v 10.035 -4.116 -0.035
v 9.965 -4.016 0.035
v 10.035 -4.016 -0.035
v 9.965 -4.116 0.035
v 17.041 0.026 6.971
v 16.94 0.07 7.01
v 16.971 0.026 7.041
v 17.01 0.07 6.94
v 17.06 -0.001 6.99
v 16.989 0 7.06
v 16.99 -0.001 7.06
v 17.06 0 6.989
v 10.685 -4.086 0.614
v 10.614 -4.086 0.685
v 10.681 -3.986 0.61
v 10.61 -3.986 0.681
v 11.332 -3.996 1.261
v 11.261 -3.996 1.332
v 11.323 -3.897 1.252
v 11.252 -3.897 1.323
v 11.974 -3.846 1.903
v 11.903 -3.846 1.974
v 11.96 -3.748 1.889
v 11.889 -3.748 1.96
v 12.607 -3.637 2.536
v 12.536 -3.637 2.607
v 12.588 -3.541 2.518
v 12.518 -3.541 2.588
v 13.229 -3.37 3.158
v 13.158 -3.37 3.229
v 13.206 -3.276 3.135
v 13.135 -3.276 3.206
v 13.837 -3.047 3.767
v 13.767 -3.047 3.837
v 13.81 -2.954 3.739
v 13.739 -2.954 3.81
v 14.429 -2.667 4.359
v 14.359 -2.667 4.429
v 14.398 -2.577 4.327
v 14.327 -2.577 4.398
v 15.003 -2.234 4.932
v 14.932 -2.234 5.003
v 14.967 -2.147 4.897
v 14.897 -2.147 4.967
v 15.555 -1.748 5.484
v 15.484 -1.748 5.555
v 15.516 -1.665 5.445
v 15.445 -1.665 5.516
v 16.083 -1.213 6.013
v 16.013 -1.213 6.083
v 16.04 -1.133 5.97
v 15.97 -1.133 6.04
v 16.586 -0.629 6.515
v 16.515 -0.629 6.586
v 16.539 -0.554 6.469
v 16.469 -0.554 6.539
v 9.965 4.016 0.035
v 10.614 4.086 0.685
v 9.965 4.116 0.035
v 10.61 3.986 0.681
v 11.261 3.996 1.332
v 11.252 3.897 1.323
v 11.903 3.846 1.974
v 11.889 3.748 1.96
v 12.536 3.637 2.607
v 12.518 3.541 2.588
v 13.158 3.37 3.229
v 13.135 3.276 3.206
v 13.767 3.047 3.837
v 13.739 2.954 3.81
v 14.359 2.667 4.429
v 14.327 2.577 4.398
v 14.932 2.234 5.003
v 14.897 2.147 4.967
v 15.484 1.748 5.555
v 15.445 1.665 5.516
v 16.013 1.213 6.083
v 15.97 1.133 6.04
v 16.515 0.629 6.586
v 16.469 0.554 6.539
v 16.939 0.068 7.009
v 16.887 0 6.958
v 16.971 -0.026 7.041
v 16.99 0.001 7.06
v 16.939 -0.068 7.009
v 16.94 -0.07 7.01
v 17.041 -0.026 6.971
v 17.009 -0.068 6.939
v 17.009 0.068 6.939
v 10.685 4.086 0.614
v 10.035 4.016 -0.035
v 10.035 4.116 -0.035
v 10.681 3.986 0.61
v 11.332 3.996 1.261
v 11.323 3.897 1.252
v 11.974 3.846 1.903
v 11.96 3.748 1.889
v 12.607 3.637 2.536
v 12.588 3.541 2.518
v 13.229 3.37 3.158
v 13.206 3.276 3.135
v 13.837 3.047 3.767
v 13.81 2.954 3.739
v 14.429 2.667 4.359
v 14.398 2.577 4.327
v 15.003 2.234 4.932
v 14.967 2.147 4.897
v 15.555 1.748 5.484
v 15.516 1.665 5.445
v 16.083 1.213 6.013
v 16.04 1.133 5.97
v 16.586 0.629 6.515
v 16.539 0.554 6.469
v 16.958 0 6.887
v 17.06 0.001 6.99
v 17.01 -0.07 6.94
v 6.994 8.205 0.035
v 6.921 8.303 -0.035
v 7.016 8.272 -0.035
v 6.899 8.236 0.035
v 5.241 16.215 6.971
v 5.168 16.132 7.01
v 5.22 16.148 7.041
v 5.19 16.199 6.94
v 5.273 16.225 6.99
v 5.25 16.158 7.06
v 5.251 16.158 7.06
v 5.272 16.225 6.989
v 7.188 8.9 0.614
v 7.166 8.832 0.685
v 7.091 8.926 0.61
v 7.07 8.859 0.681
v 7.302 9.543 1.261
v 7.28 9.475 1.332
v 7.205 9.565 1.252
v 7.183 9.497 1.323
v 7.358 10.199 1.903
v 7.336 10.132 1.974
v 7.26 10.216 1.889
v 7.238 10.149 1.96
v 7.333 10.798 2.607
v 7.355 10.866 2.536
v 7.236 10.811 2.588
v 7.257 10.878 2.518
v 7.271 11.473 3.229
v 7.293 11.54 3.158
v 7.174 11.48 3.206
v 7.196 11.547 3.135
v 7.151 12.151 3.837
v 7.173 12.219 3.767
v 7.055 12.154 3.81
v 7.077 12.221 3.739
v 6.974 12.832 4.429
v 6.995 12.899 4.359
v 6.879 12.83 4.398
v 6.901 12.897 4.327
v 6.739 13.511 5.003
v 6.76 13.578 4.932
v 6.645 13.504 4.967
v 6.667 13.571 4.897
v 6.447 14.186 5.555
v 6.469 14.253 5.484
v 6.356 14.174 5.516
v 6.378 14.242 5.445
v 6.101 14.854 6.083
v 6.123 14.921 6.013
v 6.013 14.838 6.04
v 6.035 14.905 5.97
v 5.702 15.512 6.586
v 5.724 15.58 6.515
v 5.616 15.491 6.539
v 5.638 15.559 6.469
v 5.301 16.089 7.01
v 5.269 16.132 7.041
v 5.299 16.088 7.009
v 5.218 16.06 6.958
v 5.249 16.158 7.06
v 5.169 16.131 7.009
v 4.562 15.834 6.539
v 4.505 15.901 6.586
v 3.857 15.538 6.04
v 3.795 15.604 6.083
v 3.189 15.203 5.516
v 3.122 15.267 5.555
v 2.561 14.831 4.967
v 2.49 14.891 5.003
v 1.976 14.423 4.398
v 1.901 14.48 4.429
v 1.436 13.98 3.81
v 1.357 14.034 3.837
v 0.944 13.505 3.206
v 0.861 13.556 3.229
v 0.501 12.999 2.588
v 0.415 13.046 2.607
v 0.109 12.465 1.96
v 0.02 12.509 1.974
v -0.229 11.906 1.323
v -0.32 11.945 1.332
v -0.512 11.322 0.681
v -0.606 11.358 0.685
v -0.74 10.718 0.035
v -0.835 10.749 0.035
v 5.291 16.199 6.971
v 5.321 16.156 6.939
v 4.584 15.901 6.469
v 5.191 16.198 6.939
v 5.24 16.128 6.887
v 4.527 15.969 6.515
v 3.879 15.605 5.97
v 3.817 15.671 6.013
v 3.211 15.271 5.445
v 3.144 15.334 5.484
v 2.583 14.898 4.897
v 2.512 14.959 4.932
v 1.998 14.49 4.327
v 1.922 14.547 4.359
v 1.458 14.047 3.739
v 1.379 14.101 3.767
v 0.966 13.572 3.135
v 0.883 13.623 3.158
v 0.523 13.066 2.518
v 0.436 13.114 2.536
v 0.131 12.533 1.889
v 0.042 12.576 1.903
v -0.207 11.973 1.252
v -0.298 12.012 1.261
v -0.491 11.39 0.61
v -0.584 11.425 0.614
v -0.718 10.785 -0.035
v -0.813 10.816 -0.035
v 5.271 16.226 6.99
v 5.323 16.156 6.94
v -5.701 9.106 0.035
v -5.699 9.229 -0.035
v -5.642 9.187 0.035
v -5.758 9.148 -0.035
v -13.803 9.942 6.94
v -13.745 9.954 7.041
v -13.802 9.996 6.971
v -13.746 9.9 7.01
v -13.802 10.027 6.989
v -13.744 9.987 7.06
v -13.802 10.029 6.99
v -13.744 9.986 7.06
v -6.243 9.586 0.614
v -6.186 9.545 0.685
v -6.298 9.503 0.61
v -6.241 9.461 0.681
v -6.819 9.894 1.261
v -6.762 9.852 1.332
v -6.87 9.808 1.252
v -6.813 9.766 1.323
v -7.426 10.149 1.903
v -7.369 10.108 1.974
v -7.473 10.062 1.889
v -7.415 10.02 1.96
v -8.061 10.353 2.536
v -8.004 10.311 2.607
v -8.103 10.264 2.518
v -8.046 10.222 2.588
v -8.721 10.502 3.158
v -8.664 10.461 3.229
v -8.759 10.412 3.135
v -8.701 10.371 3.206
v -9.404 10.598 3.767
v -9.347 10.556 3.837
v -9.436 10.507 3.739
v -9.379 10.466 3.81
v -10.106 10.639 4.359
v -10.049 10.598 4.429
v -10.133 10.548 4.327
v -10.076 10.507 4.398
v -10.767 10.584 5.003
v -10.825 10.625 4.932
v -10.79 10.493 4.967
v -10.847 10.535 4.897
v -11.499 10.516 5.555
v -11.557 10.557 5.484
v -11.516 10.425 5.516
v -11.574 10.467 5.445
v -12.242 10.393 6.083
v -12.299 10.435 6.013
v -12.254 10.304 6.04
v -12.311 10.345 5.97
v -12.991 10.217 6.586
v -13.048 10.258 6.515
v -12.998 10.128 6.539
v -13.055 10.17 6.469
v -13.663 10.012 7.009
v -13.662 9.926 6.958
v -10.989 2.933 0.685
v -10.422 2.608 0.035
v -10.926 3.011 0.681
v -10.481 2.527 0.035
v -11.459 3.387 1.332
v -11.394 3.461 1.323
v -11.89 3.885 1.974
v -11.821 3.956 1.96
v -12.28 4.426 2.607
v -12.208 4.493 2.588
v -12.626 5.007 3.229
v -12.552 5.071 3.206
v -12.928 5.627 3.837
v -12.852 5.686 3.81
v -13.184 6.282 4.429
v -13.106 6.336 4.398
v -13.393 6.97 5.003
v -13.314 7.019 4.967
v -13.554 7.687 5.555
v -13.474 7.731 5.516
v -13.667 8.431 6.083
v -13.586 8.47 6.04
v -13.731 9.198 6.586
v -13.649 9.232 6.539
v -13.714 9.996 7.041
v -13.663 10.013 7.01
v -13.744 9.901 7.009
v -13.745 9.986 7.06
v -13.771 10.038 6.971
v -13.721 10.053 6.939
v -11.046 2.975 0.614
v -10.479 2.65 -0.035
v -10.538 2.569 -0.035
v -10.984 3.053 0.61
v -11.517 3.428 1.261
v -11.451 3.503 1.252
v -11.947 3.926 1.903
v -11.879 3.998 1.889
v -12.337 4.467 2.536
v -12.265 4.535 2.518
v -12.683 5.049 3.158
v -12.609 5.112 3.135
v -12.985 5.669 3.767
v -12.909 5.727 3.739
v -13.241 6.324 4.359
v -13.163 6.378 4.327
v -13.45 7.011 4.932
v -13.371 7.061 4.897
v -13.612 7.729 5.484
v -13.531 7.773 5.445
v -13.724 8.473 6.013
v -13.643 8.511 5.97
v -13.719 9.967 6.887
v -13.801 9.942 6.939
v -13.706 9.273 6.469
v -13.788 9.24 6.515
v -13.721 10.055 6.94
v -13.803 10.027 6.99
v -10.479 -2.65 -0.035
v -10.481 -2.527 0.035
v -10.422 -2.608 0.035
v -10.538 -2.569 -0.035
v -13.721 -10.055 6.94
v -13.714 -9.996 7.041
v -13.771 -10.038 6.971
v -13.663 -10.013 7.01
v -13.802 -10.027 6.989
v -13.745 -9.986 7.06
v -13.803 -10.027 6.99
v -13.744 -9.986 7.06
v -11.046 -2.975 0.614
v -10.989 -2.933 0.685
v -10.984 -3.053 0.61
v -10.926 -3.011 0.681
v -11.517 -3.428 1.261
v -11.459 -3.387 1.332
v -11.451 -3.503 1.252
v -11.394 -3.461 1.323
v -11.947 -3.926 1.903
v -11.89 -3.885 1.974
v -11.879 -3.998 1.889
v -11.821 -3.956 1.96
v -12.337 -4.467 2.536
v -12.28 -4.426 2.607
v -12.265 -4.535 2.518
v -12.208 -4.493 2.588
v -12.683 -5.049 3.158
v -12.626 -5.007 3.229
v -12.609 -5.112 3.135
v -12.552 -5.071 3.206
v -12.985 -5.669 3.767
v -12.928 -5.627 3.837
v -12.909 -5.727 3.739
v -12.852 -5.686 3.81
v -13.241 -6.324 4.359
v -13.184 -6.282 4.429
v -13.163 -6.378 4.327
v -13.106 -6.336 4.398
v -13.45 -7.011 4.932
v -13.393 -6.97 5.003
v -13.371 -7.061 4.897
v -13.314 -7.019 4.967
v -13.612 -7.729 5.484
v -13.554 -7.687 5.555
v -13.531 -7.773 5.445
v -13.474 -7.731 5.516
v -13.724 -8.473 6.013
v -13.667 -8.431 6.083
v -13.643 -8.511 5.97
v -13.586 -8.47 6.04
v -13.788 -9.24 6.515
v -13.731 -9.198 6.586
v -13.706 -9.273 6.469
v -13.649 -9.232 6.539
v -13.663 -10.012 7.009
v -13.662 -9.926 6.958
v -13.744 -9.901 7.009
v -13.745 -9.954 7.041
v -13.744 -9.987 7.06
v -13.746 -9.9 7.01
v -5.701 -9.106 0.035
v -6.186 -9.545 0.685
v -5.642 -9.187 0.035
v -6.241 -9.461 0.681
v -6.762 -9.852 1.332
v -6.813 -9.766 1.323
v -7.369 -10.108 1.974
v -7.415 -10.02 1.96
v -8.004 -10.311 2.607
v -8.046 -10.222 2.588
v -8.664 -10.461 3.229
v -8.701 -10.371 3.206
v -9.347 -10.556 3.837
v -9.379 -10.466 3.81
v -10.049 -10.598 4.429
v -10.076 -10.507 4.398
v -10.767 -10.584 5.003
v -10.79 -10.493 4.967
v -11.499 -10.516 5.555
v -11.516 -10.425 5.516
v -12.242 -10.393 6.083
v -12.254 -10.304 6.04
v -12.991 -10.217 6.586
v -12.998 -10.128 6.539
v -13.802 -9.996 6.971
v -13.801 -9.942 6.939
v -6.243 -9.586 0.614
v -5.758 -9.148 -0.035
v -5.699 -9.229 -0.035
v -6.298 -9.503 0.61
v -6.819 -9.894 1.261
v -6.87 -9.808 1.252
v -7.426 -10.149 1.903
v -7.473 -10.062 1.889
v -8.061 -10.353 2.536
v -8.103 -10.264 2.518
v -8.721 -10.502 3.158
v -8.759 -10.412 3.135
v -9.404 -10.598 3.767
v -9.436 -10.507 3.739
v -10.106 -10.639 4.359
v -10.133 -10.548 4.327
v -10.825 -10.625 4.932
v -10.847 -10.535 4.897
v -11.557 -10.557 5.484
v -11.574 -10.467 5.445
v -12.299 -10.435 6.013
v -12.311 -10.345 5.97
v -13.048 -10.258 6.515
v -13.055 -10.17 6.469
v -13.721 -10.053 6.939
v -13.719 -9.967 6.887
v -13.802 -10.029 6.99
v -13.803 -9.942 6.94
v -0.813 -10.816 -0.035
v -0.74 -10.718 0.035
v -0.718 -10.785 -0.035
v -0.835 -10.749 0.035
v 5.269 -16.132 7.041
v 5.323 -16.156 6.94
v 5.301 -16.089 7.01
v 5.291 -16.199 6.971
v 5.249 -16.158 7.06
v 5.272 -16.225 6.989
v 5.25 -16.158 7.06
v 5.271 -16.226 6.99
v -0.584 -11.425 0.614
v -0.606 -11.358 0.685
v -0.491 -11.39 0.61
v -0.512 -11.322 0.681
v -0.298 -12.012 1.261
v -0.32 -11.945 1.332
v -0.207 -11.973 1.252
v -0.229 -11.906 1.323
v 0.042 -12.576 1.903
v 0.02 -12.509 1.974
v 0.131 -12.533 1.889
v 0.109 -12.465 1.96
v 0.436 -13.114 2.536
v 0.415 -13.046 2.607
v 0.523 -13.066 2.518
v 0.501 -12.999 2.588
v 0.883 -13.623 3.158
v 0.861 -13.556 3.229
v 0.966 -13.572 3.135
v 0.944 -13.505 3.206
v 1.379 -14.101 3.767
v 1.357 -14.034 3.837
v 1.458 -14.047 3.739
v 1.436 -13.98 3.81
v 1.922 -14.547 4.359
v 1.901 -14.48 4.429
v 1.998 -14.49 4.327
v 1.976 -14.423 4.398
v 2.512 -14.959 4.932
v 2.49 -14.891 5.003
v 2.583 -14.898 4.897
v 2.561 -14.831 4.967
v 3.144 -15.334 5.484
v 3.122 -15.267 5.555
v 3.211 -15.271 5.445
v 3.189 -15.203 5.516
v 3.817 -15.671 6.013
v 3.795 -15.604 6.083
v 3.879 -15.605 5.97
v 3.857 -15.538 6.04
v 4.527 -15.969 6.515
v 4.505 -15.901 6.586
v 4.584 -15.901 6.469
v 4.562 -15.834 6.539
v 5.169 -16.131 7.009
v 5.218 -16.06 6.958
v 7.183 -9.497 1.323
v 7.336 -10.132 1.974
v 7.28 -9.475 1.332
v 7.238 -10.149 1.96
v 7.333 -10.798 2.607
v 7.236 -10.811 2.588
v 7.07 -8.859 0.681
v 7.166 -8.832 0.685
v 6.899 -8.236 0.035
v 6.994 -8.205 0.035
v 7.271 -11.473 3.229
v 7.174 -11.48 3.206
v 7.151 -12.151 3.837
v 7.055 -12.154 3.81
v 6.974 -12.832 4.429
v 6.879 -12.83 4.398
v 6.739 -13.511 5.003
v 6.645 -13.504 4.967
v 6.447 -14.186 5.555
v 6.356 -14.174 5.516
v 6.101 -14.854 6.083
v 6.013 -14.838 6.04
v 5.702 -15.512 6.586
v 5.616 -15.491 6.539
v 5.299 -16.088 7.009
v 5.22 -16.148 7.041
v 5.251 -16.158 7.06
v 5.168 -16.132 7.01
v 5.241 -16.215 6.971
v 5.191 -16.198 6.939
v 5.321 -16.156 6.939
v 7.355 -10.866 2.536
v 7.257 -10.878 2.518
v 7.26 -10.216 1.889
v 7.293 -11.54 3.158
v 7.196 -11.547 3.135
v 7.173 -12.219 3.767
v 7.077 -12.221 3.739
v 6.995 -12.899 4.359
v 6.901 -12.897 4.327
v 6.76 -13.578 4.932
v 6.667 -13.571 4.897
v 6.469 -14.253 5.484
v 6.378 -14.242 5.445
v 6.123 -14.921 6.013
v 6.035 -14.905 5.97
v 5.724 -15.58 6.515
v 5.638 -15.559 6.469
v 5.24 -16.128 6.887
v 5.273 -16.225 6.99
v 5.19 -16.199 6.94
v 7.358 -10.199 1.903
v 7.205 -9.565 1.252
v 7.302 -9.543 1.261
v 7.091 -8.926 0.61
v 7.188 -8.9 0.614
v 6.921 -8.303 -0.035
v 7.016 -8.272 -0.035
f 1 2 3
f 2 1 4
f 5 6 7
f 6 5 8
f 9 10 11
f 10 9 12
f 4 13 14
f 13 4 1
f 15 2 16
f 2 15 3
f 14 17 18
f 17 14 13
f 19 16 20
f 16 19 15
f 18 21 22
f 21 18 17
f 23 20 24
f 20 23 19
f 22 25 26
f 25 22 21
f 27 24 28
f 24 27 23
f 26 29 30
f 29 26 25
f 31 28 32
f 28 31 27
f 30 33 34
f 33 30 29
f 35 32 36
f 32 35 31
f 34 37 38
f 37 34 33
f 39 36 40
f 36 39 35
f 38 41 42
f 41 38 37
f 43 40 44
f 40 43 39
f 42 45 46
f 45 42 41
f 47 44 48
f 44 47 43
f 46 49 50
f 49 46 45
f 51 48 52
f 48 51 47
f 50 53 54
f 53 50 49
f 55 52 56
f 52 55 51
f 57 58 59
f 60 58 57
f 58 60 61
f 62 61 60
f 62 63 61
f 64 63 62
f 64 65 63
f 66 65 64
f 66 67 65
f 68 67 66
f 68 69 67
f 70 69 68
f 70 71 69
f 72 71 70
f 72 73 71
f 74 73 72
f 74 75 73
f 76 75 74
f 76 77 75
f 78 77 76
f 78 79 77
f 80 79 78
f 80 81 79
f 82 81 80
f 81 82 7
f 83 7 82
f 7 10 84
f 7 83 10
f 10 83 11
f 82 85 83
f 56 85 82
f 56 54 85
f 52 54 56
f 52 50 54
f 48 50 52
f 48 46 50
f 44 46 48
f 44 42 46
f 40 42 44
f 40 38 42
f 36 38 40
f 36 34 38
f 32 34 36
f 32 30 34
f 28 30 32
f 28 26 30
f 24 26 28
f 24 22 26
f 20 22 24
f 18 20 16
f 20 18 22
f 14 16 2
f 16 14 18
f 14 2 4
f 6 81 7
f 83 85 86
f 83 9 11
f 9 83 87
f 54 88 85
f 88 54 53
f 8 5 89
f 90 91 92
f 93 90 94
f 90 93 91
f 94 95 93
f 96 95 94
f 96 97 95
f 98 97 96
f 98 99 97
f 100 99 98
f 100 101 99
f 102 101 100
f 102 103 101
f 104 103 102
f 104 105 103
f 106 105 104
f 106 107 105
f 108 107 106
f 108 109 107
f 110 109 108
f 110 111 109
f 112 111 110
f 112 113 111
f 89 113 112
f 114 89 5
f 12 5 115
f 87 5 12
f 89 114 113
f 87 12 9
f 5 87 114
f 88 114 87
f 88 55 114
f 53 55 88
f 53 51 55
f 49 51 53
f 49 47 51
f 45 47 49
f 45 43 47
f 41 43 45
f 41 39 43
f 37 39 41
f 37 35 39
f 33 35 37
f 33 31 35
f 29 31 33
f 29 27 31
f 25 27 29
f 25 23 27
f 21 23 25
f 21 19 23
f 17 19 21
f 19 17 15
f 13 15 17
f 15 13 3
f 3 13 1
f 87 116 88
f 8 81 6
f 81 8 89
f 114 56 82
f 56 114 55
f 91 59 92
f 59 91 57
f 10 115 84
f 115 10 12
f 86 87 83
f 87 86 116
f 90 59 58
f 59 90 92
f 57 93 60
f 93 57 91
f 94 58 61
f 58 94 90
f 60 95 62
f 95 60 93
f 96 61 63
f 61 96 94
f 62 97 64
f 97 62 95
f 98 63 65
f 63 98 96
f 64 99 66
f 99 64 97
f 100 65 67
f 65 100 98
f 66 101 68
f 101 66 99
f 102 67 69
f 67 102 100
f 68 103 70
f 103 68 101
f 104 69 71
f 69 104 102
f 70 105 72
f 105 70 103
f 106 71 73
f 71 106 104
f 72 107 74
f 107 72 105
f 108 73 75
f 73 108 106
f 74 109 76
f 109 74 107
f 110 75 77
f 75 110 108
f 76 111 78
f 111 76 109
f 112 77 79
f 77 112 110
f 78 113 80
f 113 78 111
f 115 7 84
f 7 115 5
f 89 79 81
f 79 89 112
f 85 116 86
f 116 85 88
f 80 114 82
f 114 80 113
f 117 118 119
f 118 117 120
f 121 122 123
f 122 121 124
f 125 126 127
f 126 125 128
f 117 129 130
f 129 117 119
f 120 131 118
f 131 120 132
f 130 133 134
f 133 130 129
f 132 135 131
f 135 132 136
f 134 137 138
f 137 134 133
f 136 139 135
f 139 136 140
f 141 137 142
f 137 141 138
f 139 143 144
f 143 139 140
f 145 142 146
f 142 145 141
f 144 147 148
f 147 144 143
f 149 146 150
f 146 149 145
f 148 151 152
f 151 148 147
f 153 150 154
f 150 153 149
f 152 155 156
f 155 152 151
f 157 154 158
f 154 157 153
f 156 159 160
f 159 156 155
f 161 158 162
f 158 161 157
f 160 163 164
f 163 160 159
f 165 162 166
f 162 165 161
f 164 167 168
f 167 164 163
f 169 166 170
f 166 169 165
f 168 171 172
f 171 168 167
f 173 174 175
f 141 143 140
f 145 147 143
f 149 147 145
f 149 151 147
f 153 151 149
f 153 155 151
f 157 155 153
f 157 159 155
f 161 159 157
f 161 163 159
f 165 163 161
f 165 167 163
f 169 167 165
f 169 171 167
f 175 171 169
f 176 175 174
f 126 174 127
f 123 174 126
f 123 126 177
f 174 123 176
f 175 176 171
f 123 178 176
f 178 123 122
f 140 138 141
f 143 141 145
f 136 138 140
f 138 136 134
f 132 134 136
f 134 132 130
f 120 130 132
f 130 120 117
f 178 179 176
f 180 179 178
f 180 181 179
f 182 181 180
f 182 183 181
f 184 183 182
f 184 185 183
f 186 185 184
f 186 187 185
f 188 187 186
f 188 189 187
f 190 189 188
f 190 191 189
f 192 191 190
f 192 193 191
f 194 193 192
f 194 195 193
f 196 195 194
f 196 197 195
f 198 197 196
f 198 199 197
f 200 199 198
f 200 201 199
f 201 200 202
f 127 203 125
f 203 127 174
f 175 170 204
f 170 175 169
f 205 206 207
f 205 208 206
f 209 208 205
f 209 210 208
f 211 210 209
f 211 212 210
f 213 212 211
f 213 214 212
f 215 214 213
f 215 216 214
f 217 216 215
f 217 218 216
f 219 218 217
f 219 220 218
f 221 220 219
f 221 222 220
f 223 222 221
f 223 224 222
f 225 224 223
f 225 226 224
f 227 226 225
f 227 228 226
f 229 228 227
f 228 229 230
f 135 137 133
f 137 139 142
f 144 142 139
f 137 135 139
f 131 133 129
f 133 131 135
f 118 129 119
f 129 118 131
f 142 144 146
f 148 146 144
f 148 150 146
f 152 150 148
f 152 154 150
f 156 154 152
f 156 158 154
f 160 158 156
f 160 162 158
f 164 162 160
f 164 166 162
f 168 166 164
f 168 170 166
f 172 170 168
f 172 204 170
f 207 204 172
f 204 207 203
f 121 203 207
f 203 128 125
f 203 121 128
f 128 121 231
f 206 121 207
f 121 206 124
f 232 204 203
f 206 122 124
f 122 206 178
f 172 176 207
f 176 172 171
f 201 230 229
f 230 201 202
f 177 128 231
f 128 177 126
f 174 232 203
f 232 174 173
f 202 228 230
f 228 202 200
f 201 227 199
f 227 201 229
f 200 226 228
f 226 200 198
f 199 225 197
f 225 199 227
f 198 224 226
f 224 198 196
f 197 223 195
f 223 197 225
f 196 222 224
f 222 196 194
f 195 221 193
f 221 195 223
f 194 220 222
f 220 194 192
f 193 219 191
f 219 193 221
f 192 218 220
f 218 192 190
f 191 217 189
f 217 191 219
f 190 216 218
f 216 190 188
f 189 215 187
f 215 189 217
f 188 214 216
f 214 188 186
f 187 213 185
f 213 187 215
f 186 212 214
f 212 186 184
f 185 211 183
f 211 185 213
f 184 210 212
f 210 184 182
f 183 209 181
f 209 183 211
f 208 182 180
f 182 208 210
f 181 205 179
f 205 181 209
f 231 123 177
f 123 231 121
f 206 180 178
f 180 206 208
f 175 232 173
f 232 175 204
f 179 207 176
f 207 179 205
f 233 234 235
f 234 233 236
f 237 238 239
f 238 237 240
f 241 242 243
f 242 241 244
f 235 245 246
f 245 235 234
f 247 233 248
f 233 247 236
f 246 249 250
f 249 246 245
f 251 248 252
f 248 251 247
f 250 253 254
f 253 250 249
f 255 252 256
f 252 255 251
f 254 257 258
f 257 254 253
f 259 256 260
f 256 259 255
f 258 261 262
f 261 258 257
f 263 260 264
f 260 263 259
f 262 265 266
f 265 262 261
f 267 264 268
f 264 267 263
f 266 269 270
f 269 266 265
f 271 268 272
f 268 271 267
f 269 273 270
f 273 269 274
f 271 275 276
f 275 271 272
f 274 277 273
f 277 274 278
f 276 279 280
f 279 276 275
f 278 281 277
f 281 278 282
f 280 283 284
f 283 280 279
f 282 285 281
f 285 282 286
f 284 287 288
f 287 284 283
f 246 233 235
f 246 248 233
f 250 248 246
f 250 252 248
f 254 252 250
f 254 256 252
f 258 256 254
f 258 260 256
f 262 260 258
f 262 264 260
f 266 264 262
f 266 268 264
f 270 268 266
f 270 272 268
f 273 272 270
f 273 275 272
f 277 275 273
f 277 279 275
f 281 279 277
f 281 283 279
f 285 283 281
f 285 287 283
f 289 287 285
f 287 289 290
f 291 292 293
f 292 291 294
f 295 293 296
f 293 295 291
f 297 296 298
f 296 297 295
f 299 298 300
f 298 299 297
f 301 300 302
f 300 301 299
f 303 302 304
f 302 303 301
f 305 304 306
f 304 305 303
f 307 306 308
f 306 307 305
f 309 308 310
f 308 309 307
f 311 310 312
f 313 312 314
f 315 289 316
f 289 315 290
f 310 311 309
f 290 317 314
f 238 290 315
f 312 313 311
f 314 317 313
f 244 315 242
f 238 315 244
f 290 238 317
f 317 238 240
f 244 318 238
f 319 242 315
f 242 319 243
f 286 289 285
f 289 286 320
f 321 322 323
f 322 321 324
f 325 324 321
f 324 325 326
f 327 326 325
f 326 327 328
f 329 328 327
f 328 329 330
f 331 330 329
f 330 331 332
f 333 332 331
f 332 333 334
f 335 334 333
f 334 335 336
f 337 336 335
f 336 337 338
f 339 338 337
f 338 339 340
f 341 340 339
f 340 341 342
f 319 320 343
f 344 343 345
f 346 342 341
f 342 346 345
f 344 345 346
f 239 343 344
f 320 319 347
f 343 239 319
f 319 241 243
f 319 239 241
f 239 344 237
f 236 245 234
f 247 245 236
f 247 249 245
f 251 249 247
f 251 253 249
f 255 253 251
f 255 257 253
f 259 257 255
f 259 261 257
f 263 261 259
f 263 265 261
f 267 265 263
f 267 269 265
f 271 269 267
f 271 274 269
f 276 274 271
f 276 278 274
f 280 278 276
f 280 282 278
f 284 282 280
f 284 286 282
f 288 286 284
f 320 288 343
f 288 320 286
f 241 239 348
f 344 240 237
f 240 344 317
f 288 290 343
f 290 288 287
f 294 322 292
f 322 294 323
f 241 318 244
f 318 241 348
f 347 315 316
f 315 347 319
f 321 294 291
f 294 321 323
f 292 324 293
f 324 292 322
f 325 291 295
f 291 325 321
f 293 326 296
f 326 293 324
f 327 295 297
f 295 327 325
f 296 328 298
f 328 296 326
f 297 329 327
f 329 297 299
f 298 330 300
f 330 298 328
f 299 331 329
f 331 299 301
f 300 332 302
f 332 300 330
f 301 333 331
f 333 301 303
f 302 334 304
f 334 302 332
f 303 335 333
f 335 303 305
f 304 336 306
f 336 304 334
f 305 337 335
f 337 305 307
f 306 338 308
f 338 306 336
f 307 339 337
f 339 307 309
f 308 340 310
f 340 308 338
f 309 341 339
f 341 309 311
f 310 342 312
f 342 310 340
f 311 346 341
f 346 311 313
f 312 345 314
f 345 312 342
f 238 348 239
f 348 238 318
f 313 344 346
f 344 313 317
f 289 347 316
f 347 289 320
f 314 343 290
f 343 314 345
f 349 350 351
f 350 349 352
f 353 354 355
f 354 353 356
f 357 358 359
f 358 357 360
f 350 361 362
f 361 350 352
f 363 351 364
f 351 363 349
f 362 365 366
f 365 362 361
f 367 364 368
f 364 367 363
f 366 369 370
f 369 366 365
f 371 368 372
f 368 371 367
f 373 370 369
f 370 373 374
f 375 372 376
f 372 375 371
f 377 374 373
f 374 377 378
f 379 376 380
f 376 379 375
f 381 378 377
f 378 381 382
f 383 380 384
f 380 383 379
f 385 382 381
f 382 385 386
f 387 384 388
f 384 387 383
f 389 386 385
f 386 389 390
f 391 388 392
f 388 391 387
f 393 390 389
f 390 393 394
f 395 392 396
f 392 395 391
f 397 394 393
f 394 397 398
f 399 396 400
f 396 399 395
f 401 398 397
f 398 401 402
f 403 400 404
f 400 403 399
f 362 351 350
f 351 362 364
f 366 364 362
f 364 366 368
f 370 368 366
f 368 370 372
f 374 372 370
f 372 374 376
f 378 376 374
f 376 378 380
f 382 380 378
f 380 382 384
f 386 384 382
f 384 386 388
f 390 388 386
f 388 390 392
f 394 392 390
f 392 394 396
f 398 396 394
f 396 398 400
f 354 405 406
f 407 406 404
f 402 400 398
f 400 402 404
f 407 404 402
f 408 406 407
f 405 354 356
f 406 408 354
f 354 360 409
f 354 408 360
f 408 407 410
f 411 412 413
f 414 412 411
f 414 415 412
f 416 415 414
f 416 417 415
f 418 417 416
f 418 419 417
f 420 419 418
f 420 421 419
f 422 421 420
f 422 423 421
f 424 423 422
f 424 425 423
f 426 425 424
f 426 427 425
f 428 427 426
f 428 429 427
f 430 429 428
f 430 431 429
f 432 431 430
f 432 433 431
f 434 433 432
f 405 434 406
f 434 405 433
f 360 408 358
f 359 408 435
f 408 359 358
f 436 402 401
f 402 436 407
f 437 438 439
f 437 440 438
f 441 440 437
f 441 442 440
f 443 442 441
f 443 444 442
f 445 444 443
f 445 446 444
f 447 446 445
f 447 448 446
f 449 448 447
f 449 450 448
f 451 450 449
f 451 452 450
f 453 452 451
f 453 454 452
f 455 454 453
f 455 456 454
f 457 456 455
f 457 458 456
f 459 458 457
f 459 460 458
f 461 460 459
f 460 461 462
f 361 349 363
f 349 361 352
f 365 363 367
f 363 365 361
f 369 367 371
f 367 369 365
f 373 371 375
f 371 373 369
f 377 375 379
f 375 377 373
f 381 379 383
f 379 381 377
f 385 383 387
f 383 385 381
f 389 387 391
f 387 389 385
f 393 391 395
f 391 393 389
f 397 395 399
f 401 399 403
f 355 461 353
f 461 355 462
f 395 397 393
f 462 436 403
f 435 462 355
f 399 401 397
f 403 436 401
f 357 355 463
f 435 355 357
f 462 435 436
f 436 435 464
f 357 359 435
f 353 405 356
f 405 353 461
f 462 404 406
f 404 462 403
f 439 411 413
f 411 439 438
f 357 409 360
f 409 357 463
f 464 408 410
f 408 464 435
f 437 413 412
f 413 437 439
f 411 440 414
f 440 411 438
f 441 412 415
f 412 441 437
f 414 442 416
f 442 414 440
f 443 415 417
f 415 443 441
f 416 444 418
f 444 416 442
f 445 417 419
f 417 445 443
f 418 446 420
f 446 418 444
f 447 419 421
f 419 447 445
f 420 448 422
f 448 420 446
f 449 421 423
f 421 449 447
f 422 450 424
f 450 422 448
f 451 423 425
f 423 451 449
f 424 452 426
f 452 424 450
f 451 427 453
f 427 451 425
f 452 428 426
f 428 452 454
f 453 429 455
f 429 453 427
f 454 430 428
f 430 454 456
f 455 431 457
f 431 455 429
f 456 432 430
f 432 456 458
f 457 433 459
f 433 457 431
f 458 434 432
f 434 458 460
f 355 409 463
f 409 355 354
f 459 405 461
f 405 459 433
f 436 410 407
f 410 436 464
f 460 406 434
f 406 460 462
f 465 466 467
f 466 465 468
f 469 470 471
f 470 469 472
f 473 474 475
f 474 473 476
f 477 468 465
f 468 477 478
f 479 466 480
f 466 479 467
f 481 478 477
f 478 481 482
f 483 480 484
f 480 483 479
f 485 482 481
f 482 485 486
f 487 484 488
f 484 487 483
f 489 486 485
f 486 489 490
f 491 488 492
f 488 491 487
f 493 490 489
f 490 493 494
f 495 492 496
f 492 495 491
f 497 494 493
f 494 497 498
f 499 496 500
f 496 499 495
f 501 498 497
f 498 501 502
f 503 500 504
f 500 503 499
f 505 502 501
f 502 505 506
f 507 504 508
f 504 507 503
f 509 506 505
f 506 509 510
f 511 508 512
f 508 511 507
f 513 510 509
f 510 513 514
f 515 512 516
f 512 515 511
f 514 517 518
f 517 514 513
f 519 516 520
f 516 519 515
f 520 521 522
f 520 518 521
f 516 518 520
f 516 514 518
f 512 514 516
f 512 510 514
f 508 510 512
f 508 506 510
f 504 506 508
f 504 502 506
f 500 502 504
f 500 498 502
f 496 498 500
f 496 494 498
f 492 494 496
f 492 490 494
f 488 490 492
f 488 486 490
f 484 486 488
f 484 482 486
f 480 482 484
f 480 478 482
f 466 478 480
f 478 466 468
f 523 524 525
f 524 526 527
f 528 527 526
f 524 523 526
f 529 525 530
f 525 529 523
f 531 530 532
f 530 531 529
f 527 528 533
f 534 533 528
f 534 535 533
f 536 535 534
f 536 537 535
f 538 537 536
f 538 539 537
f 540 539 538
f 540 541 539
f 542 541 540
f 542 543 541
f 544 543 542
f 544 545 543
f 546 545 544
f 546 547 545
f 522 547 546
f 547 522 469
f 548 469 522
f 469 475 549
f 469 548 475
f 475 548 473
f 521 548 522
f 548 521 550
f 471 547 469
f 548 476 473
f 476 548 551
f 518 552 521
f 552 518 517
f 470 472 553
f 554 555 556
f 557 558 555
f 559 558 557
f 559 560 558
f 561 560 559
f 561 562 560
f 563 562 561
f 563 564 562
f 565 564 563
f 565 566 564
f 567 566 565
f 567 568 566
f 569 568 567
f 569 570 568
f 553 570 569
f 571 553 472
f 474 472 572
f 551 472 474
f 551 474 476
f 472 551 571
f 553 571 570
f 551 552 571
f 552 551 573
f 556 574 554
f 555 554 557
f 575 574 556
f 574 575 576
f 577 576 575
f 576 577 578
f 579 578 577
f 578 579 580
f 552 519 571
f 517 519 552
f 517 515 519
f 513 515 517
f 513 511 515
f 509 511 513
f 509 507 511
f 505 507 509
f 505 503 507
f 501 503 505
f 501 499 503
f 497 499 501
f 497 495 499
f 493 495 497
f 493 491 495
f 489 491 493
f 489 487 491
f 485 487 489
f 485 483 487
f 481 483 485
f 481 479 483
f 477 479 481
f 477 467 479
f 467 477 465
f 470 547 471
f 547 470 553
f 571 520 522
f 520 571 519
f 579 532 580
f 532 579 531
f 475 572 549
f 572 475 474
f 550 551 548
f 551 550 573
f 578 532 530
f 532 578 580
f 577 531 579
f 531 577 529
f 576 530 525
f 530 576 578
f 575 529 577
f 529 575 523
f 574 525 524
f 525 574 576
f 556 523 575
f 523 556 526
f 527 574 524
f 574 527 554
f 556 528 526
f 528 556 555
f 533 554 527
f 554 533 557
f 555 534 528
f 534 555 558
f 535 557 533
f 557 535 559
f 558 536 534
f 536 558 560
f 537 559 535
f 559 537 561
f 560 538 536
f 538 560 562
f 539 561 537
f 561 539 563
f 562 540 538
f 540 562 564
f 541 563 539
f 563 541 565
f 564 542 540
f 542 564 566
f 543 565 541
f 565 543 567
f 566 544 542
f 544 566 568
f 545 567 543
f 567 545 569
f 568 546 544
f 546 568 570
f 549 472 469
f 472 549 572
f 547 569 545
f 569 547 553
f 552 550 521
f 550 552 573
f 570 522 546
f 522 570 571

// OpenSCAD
$fn = 100;

arch_w = 2;
arch_d = 0.1;
arch_t = 0.1;

arch_sweep_radius = 14;
arch_sweep_angle = 45;
arch_base_sep = -4.967*2;

module arch_half(){
    translate([arch_base_sep,0,0]){
        rotate_extrude(angle = arch_sweep_angle){
            translate([arch_sweep_radius,0,0]){
                square([arch_t, arch_d], center=true);
            }
        }
    }
}

module arch(){
    rotate([0,-45,0]){
        rotate([0,0,-90]){
            arch_half();
            mirror([-1,0,0]){
                arch_half();
            }
        }
    }
}

//arch();


num_petals = 5;
flower_radius = 10;
module flower(){
    for(i=[0:1:num_petals]){
        rotate([0,0,i*360/num_petals]){
            translate([flower_radius,0,0]){
                arch();
            }
        }
    }
}

union(){
    flower();

//breaks when rendering for some reason
    /*scale([0.016,0.016,0.016]){
        import ("Mannequin_FULL.stl", convexity = 4);
    }*/
}
